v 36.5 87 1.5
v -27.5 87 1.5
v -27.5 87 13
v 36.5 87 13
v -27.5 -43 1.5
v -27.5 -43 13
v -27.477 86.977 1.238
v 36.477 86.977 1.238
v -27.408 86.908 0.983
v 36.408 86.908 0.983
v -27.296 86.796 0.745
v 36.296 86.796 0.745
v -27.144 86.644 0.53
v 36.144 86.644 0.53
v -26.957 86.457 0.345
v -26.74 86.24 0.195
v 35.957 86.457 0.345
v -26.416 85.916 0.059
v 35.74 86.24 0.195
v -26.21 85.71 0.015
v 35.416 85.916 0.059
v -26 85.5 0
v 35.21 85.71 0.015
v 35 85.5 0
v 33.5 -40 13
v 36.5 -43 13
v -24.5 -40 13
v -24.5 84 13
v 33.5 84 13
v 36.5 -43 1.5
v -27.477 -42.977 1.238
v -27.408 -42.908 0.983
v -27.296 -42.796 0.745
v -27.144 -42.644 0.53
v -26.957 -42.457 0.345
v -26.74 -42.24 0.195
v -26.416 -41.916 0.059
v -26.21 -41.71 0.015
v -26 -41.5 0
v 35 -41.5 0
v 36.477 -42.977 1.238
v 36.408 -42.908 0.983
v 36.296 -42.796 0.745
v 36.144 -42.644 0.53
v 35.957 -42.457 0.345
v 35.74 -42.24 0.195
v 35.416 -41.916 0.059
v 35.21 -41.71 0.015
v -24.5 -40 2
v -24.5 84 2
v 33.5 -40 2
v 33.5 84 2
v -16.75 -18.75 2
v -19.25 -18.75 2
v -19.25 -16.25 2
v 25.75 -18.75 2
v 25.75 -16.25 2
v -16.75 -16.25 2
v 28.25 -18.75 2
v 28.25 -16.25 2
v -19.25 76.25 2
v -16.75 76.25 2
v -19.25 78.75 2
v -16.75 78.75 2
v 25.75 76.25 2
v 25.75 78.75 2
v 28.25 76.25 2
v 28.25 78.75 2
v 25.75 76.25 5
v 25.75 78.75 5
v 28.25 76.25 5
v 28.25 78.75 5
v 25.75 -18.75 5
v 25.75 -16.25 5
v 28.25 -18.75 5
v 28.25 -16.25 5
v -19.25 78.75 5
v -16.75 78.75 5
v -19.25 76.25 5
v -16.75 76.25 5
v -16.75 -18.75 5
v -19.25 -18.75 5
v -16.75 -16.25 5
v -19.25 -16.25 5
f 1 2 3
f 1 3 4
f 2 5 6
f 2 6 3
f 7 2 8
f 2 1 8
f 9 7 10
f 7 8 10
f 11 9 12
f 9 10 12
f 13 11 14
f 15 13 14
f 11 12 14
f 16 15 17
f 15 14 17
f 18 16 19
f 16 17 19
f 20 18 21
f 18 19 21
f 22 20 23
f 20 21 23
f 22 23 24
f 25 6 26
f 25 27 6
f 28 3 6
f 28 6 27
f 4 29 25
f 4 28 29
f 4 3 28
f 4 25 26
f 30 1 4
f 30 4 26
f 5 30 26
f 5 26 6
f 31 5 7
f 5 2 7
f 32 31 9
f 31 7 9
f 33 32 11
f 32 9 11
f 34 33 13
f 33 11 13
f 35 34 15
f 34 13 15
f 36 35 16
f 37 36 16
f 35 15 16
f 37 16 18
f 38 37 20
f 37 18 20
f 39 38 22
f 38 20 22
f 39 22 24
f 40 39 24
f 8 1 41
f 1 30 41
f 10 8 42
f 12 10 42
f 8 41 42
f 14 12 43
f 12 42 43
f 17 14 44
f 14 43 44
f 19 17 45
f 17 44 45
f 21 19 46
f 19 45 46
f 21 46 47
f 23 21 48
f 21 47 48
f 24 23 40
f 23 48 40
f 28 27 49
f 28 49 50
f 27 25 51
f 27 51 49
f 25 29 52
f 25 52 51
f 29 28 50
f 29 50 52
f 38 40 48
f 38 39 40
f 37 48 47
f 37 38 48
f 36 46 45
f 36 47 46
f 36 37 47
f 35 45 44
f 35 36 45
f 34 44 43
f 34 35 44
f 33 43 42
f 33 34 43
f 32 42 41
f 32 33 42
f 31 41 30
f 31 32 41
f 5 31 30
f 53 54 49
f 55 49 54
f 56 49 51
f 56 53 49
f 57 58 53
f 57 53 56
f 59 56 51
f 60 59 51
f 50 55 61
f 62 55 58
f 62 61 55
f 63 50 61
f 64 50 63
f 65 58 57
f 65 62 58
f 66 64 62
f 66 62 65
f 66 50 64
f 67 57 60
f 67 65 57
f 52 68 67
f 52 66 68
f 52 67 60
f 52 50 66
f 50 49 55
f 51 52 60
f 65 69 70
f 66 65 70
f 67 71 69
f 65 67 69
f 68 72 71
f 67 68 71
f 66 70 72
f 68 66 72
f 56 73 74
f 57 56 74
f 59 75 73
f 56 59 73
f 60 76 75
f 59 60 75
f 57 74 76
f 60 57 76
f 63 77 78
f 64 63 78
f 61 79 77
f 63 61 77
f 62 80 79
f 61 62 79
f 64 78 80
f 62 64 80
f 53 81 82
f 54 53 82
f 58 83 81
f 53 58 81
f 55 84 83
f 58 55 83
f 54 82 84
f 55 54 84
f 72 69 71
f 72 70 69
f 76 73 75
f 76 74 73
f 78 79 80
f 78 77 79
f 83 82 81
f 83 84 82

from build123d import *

# Parameters (mm, degrees)
SKETCH_W     = 64
SKETCH_H     = 130
PAD_DEPTH    = 13
SKETCH002_W  = 58
SKETCH002_H  = 124
POCKET_DEPTH = 11
SKETCH007_W  = 2.5
SKETCH007_H  = 2.5
PAD001_DEPTH = 3
FILLET_R     = 1.5


with BuildPart() as part:
    # Sketch → Pad (new body)
    with BuildSketch(Plane.XY):
        with Locations((4.5, 22)):
            Rectangle(SKETCH_W, SKETCH_H)
    extrude(amount=PAD_DEPTH)

    # Sketch002 → Pocket (cut)
    with BuildSketch(Plane.XY.offset(13)):
        with Locations((4.5, 22)):
            Rectangle(SKETCH002_W, SKETCH002_H)
    extrude(amount=-POCKET_DEPTH, mode=Mode.SUBTRACT)

    # Sketch007 → Pad001 (new body)
    with BuildSketch(Plane.XY.offset(2)):
        with Locations((-18, 77.5)):
            Rectangle(SKETCH007_W, SKETCH007_H)
        with Locations((27, 77.5)):
            Rectangle(SKETCH007_W, SKETCH007_H)
        with Locations((-18, -17.5)):
            Rectangle(SKETCH007_W, SKETCH007_H)
        with Locations((27, -17.5)):
            Rectangle(SKETCH007_W, SKETCH007_H)
    extrude(amount=PAD001_DEPTH)

    # Fillet
    fillet_edges = [part.edges().sort_by_distance(p)[0] for p in [
        (4.5, 87, 0),
        (-27.5, 22, 0),
        (36.5, 22, 0),
        (4.5, -43, 0),
    ]]
    fillet(fillet_edges, radius=FILLET_R)


solid = part.part
